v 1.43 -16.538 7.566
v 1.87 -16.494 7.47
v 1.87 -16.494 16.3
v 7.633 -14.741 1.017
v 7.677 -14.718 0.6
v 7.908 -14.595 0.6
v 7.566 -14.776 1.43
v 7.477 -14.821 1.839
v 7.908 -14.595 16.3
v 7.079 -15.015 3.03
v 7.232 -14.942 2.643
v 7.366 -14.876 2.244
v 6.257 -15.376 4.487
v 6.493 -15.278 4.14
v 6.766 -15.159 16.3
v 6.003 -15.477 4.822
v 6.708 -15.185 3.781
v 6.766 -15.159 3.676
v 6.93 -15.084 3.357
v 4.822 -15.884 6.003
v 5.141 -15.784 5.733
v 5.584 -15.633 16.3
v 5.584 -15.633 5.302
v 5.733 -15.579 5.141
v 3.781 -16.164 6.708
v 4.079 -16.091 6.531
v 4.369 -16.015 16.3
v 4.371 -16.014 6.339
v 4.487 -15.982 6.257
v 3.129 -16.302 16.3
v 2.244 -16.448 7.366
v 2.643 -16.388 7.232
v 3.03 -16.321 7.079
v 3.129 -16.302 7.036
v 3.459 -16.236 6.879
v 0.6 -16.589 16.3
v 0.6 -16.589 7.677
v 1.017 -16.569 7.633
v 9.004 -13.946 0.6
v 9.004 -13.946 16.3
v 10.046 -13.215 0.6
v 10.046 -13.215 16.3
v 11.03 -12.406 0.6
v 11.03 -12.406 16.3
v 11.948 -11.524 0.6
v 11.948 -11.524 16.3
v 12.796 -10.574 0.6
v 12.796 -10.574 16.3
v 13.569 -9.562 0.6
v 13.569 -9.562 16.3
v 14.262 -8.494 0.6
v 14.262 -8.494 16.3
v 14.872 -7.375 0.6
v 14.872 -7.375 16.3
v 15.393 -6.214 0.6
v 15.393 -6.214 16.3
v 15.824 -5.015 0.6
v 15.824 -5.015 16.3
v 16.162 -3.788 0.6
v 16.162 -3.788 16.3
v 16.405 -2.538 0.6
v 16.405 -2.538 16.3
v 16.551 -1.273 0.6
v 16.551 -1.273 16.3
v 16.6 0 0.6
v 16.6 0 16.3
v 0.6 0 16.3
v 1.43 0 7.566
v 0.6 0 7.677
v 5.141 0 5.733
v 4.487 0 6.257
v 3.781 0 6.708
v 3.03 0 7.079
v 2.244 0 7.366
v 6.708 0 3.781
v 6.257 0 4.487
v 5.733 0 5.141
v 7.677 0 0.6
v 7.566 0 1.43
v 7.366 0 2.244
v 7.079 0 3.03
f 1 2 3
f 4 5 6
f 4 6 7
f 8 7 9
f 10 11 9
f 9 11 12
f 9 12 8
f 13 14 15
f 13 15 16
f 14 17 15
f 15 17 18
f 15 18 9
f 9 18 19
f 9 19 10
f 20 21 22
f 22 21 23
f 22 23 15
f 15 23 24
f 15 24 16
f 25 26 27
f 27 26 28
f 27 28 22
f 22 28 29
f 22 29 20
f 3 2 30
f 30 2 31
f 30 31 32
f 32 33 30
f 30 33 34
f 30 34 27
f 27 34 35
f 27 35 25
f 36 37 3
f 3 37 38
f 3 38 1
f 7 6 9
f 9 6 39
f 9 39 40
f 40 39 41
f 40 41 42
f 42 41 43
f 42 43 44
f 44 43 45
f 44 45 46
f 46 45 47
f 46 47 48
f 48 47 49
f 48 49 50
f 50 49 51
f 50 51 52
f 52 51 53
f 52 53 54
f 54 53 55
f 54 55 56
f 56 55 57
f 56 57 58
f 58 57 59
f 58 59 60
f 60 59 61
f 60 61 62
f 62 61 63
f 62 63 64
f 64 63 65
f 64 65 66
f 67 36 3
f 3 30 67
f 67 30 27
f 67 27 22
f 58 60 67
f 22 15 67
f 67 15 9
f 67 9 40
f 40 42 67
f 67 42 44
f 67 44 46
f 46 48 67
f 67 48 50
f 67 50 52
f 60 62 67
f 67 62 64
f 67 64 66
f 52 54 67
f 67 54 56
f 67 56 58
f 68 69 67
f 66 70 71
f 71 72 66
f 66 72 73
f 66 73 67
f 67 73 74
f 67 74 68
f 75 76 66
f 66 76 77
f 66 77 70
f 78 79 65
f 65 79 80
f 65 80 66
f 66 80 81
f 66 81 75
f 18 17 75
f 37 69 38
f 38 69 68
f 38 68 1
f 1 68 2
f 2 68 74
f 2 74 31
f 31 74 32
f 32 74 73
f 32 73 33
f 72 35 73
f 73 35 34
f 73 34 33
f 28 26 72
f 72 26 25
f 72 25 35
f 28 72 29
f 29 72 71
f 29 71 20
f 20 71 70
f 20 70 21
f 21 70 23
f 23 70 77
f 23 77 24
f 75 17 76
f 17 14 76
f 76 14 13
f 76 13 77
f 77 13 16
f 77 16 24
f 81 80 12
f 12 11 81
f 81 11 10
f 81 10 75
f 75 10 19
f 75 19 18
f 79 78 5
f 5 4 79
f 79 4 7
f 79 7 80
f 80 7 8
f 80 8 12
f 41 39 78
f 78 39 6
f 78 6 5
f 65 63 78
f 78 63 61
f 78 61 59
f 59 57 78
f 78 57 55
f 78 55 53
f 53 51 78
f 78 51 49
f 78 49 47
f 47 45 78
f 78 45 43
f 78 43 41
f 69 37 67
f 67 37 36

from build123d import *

# Parameters (mm, degrees)
SKETCH1_R           = 16.6
BOSS_EXTRUDE1_DEPTH = 16.3
CUT_EXTRUDE1_DEPTH  = 29.579888033
SKETCH3_R           = 7.7
CUT_EXTRUDE2_DEPTH  = 29.579888033
SKETCH4_W           = 0.6
SKETCH4_H           = 9.511954595
SKETCH4_W_2         = 10.341543893
SKETCH4_H_2         = 0.6
CUT_EXTRUDE3_DEPTH  = 29.579888207


with BuildPart() as part:
    # Sketch1 → Boss-Extrude1 (new body)
    with BuildSketch(Plane.XY):
        Circle(SKETCH1_R)
    extrude(amount=BOSS_EXTRUDE1_DEPTH)

    # Sketch2 → Cut-Extrude1 (cut, through all)
    with BuildSketch(Plane.XY.offset(16.3)):
        with BuildLine():
            Line((0, 0), (16.6, 0))
            ThreePointArc((16.6, 0), (-11.737972568, 11.737972568), (0, -16.6))
            Line((0, -16.6), (0, 0))
        make_face()
    extrude(amount=-CUT_EXTRUDE1_DEPTH, mode=Mode.SUBTRACT)

    # Sketch3 → Cut-Extrude2 (cut, through all)
    with BuildSketch(Plane(origin=(0, 0, 0), x_dir=(1, 0, 0), z_dir=(0, 1, 0))):
        Circle(SKETCH3_R)
    extrude(amount=-CUT_EXTRUDE2_DEPTH, mode=Mode.SUBTRACT)

    # Sketch4 → Cut-Extrude3 (cut, through all)
    with BuildSketch(Plane(origin=(0, 0, 0), x_dir=(1, 0, 0), z_dir=(0, 1, 0))):
        with Locations((0.3, -11.544022703)):
            Rectangle(SKETCH4_W, SKETCH4_H)
        with Locations((11.429228054, -0.3)):
            Rectangle(SKETCH4_W_2, SKETCH4_H_2)
    extrude(amount=-CUT_EXTRUDE3_DEPTH, mode=Mode.SUBTRACT)


solid = part.part
